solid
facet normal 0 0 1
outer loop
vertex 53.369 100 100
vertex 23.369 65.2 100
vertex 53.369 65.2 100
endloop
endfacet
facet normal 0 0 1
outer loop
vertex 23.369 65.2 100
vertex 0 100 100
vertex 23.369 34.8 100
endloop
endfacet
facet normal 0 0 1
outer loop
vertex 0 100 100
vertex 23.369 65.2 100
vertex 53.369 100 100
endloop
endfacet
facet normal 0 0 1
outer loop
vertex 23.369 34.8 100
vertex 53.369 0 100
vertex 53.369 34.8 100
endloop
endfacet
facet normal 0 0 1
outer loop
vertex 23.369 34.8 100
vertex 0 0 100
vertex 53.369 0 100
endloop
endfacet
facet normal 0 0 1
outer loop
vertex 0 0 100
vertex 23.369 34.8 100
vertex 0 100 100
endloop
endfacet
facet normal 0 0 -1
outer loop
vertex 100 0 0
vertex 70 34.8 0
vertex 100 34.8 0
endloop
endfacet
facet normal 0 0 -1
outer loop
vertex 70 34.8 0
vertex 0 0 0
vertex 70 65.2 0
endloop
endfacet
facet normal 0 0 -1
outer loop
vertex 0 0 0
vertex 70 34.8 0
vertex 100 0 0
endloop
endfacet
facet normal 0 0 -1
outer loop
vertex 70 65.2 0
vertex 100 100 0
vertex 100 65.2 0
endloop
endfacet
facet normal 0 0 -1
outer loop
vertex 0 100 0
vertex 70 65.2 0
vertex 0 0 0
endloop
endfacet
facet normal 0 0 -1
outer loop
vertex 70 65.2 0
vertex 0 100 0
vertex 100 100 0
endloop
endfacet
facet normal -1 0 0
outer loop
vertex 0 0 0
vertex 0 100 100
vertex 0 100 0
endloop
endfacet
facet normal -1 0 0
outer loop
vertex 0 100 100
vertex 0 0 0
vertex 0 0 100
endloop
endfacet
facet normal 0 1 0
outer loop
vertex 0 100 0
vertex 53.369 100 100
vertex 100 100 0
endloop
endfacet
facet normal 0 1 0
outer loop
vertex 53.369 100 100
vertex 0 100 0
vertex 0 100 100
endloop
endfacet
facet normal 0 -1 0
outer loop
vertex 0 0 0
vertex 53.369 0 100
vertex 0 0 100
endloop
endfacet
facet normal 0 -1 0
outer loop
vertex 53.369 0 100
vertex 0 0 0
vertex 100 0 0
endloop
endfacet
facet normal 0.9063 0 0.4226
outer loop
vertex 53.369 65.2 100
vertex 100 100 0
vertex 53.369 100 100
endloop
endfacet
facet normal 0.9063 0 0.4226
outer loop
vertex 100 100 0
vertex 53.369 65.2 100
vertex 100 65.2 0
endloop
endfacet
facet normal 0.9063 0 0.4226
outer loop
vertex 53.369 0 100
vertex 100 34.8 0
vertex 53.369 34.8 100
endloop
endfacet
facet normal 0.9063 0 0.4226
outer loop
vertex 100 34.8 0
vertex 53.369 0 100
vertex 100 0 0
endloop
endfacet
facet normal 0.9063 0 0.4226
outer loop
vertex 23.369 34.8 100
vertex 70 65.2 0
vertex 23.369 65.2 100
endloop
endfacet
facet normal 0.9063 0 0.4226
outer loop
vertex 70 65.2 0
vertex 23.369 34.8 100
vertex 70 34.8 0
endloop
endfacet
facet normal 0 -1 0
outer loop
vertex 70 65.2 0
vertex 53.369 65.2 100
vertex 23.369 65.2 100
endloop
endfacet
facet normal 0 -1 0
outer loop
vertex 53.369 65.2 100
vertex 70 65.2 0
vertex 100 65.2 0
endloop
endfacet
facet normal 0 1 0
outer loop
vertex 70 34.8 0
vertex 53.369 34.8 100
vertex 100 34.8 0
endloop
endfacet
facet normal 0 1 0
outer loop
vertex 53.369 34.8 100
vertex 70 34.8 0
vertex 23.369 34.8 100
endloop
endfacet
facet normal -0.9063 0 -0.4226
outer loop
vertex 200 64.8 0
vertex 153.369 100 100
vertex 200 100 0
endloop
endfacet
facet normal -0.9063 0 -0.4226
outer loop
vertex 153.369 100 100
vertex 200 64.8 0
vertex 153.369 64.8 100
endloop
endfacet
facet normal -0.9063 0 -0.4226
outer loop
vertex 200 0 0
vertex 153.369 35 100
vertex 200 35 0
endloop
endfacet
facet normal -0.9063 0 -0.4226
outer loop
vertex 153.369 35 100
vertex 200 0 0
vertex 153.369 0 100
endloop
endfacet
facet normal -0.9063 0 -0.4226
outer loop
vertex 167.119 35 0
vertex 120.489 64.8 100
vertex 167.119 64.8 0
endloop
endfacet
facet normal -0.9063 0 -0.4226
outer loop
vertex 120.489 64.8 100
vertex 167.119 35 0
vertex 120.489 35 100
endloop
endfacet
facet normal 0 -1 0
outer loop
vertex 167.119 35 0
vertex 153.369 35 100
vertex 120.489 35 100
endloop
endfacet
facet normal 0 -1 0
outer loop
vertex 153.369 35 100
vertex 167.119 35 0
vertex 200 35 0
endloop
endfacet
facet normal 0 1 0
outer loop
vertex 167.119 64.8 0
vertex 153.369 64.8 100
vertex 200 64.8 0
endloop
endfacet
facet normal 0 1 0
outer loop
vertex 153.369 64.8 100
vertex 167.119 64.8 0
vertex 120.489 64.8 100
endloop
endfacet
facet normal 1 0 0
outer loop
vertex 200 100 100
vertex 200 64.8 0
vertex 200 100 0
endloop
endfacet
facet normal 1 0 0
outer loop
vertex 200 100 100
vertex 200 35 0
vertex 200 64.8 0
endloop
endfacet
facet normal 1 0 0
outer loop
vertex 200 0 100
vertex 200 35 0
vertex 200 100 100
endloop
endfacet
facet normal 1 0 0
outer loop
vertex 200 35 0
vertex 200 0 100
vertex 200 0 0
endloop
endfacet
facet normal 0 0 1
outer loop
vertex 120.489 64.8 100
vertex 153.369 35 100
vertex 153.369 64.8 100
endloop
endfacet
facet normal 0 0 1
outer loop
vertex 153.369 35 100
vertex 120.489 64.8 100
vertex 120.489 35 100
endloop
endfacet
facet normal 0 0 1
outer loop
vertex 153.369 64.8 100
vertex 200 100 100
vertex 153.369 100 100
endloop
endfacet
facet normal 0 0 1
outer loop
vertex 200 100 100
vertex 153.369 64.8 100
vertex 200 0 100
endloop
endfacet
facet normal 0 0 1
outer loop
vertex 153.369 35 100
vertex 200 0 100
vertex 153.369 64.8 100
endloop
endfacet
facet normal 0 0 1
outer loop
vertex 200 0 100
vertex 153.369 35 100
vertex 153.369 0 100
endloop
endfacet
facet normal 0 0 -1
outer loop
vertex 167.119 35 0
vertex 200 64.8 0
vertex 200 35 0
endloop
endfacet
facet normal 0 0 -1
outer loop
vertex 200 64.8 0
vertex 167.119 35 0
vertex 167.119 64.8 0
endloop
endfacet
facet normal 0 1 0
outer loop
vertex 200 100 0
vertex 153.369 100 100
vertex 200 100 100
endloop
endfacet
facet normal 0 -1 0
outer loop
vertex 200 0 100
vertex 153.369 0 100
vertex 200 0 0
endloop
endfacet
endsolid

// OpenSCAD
v = 100;
cutout = 30;
angle = 25;
err=0.2;

difference() {
    cube([v,v,v]);
    translate([v,-1,0])rotate([0,-angle,0]) cube([2*v,2*v,2*v]);
    translate([v-cutout,(v-cutout)/2-err,0]) rotate([0,-angle,0]) translate([0,0,-v])cube([2*v,cutout+2*err,3*v]);
}

translate([v, 0, 0])
difference() {
    cube([v,v,v]);
    difference() {
      translate([v,-1,0])rotate([0,180+90-angle,0]) cube([2*v,2*v,2*v]);
      translate([v,(v-cutout)/2,0]) rotate([0,180+90-angle,0]) cube([2*v,cutout-err,cutout-err]);
    };
}
